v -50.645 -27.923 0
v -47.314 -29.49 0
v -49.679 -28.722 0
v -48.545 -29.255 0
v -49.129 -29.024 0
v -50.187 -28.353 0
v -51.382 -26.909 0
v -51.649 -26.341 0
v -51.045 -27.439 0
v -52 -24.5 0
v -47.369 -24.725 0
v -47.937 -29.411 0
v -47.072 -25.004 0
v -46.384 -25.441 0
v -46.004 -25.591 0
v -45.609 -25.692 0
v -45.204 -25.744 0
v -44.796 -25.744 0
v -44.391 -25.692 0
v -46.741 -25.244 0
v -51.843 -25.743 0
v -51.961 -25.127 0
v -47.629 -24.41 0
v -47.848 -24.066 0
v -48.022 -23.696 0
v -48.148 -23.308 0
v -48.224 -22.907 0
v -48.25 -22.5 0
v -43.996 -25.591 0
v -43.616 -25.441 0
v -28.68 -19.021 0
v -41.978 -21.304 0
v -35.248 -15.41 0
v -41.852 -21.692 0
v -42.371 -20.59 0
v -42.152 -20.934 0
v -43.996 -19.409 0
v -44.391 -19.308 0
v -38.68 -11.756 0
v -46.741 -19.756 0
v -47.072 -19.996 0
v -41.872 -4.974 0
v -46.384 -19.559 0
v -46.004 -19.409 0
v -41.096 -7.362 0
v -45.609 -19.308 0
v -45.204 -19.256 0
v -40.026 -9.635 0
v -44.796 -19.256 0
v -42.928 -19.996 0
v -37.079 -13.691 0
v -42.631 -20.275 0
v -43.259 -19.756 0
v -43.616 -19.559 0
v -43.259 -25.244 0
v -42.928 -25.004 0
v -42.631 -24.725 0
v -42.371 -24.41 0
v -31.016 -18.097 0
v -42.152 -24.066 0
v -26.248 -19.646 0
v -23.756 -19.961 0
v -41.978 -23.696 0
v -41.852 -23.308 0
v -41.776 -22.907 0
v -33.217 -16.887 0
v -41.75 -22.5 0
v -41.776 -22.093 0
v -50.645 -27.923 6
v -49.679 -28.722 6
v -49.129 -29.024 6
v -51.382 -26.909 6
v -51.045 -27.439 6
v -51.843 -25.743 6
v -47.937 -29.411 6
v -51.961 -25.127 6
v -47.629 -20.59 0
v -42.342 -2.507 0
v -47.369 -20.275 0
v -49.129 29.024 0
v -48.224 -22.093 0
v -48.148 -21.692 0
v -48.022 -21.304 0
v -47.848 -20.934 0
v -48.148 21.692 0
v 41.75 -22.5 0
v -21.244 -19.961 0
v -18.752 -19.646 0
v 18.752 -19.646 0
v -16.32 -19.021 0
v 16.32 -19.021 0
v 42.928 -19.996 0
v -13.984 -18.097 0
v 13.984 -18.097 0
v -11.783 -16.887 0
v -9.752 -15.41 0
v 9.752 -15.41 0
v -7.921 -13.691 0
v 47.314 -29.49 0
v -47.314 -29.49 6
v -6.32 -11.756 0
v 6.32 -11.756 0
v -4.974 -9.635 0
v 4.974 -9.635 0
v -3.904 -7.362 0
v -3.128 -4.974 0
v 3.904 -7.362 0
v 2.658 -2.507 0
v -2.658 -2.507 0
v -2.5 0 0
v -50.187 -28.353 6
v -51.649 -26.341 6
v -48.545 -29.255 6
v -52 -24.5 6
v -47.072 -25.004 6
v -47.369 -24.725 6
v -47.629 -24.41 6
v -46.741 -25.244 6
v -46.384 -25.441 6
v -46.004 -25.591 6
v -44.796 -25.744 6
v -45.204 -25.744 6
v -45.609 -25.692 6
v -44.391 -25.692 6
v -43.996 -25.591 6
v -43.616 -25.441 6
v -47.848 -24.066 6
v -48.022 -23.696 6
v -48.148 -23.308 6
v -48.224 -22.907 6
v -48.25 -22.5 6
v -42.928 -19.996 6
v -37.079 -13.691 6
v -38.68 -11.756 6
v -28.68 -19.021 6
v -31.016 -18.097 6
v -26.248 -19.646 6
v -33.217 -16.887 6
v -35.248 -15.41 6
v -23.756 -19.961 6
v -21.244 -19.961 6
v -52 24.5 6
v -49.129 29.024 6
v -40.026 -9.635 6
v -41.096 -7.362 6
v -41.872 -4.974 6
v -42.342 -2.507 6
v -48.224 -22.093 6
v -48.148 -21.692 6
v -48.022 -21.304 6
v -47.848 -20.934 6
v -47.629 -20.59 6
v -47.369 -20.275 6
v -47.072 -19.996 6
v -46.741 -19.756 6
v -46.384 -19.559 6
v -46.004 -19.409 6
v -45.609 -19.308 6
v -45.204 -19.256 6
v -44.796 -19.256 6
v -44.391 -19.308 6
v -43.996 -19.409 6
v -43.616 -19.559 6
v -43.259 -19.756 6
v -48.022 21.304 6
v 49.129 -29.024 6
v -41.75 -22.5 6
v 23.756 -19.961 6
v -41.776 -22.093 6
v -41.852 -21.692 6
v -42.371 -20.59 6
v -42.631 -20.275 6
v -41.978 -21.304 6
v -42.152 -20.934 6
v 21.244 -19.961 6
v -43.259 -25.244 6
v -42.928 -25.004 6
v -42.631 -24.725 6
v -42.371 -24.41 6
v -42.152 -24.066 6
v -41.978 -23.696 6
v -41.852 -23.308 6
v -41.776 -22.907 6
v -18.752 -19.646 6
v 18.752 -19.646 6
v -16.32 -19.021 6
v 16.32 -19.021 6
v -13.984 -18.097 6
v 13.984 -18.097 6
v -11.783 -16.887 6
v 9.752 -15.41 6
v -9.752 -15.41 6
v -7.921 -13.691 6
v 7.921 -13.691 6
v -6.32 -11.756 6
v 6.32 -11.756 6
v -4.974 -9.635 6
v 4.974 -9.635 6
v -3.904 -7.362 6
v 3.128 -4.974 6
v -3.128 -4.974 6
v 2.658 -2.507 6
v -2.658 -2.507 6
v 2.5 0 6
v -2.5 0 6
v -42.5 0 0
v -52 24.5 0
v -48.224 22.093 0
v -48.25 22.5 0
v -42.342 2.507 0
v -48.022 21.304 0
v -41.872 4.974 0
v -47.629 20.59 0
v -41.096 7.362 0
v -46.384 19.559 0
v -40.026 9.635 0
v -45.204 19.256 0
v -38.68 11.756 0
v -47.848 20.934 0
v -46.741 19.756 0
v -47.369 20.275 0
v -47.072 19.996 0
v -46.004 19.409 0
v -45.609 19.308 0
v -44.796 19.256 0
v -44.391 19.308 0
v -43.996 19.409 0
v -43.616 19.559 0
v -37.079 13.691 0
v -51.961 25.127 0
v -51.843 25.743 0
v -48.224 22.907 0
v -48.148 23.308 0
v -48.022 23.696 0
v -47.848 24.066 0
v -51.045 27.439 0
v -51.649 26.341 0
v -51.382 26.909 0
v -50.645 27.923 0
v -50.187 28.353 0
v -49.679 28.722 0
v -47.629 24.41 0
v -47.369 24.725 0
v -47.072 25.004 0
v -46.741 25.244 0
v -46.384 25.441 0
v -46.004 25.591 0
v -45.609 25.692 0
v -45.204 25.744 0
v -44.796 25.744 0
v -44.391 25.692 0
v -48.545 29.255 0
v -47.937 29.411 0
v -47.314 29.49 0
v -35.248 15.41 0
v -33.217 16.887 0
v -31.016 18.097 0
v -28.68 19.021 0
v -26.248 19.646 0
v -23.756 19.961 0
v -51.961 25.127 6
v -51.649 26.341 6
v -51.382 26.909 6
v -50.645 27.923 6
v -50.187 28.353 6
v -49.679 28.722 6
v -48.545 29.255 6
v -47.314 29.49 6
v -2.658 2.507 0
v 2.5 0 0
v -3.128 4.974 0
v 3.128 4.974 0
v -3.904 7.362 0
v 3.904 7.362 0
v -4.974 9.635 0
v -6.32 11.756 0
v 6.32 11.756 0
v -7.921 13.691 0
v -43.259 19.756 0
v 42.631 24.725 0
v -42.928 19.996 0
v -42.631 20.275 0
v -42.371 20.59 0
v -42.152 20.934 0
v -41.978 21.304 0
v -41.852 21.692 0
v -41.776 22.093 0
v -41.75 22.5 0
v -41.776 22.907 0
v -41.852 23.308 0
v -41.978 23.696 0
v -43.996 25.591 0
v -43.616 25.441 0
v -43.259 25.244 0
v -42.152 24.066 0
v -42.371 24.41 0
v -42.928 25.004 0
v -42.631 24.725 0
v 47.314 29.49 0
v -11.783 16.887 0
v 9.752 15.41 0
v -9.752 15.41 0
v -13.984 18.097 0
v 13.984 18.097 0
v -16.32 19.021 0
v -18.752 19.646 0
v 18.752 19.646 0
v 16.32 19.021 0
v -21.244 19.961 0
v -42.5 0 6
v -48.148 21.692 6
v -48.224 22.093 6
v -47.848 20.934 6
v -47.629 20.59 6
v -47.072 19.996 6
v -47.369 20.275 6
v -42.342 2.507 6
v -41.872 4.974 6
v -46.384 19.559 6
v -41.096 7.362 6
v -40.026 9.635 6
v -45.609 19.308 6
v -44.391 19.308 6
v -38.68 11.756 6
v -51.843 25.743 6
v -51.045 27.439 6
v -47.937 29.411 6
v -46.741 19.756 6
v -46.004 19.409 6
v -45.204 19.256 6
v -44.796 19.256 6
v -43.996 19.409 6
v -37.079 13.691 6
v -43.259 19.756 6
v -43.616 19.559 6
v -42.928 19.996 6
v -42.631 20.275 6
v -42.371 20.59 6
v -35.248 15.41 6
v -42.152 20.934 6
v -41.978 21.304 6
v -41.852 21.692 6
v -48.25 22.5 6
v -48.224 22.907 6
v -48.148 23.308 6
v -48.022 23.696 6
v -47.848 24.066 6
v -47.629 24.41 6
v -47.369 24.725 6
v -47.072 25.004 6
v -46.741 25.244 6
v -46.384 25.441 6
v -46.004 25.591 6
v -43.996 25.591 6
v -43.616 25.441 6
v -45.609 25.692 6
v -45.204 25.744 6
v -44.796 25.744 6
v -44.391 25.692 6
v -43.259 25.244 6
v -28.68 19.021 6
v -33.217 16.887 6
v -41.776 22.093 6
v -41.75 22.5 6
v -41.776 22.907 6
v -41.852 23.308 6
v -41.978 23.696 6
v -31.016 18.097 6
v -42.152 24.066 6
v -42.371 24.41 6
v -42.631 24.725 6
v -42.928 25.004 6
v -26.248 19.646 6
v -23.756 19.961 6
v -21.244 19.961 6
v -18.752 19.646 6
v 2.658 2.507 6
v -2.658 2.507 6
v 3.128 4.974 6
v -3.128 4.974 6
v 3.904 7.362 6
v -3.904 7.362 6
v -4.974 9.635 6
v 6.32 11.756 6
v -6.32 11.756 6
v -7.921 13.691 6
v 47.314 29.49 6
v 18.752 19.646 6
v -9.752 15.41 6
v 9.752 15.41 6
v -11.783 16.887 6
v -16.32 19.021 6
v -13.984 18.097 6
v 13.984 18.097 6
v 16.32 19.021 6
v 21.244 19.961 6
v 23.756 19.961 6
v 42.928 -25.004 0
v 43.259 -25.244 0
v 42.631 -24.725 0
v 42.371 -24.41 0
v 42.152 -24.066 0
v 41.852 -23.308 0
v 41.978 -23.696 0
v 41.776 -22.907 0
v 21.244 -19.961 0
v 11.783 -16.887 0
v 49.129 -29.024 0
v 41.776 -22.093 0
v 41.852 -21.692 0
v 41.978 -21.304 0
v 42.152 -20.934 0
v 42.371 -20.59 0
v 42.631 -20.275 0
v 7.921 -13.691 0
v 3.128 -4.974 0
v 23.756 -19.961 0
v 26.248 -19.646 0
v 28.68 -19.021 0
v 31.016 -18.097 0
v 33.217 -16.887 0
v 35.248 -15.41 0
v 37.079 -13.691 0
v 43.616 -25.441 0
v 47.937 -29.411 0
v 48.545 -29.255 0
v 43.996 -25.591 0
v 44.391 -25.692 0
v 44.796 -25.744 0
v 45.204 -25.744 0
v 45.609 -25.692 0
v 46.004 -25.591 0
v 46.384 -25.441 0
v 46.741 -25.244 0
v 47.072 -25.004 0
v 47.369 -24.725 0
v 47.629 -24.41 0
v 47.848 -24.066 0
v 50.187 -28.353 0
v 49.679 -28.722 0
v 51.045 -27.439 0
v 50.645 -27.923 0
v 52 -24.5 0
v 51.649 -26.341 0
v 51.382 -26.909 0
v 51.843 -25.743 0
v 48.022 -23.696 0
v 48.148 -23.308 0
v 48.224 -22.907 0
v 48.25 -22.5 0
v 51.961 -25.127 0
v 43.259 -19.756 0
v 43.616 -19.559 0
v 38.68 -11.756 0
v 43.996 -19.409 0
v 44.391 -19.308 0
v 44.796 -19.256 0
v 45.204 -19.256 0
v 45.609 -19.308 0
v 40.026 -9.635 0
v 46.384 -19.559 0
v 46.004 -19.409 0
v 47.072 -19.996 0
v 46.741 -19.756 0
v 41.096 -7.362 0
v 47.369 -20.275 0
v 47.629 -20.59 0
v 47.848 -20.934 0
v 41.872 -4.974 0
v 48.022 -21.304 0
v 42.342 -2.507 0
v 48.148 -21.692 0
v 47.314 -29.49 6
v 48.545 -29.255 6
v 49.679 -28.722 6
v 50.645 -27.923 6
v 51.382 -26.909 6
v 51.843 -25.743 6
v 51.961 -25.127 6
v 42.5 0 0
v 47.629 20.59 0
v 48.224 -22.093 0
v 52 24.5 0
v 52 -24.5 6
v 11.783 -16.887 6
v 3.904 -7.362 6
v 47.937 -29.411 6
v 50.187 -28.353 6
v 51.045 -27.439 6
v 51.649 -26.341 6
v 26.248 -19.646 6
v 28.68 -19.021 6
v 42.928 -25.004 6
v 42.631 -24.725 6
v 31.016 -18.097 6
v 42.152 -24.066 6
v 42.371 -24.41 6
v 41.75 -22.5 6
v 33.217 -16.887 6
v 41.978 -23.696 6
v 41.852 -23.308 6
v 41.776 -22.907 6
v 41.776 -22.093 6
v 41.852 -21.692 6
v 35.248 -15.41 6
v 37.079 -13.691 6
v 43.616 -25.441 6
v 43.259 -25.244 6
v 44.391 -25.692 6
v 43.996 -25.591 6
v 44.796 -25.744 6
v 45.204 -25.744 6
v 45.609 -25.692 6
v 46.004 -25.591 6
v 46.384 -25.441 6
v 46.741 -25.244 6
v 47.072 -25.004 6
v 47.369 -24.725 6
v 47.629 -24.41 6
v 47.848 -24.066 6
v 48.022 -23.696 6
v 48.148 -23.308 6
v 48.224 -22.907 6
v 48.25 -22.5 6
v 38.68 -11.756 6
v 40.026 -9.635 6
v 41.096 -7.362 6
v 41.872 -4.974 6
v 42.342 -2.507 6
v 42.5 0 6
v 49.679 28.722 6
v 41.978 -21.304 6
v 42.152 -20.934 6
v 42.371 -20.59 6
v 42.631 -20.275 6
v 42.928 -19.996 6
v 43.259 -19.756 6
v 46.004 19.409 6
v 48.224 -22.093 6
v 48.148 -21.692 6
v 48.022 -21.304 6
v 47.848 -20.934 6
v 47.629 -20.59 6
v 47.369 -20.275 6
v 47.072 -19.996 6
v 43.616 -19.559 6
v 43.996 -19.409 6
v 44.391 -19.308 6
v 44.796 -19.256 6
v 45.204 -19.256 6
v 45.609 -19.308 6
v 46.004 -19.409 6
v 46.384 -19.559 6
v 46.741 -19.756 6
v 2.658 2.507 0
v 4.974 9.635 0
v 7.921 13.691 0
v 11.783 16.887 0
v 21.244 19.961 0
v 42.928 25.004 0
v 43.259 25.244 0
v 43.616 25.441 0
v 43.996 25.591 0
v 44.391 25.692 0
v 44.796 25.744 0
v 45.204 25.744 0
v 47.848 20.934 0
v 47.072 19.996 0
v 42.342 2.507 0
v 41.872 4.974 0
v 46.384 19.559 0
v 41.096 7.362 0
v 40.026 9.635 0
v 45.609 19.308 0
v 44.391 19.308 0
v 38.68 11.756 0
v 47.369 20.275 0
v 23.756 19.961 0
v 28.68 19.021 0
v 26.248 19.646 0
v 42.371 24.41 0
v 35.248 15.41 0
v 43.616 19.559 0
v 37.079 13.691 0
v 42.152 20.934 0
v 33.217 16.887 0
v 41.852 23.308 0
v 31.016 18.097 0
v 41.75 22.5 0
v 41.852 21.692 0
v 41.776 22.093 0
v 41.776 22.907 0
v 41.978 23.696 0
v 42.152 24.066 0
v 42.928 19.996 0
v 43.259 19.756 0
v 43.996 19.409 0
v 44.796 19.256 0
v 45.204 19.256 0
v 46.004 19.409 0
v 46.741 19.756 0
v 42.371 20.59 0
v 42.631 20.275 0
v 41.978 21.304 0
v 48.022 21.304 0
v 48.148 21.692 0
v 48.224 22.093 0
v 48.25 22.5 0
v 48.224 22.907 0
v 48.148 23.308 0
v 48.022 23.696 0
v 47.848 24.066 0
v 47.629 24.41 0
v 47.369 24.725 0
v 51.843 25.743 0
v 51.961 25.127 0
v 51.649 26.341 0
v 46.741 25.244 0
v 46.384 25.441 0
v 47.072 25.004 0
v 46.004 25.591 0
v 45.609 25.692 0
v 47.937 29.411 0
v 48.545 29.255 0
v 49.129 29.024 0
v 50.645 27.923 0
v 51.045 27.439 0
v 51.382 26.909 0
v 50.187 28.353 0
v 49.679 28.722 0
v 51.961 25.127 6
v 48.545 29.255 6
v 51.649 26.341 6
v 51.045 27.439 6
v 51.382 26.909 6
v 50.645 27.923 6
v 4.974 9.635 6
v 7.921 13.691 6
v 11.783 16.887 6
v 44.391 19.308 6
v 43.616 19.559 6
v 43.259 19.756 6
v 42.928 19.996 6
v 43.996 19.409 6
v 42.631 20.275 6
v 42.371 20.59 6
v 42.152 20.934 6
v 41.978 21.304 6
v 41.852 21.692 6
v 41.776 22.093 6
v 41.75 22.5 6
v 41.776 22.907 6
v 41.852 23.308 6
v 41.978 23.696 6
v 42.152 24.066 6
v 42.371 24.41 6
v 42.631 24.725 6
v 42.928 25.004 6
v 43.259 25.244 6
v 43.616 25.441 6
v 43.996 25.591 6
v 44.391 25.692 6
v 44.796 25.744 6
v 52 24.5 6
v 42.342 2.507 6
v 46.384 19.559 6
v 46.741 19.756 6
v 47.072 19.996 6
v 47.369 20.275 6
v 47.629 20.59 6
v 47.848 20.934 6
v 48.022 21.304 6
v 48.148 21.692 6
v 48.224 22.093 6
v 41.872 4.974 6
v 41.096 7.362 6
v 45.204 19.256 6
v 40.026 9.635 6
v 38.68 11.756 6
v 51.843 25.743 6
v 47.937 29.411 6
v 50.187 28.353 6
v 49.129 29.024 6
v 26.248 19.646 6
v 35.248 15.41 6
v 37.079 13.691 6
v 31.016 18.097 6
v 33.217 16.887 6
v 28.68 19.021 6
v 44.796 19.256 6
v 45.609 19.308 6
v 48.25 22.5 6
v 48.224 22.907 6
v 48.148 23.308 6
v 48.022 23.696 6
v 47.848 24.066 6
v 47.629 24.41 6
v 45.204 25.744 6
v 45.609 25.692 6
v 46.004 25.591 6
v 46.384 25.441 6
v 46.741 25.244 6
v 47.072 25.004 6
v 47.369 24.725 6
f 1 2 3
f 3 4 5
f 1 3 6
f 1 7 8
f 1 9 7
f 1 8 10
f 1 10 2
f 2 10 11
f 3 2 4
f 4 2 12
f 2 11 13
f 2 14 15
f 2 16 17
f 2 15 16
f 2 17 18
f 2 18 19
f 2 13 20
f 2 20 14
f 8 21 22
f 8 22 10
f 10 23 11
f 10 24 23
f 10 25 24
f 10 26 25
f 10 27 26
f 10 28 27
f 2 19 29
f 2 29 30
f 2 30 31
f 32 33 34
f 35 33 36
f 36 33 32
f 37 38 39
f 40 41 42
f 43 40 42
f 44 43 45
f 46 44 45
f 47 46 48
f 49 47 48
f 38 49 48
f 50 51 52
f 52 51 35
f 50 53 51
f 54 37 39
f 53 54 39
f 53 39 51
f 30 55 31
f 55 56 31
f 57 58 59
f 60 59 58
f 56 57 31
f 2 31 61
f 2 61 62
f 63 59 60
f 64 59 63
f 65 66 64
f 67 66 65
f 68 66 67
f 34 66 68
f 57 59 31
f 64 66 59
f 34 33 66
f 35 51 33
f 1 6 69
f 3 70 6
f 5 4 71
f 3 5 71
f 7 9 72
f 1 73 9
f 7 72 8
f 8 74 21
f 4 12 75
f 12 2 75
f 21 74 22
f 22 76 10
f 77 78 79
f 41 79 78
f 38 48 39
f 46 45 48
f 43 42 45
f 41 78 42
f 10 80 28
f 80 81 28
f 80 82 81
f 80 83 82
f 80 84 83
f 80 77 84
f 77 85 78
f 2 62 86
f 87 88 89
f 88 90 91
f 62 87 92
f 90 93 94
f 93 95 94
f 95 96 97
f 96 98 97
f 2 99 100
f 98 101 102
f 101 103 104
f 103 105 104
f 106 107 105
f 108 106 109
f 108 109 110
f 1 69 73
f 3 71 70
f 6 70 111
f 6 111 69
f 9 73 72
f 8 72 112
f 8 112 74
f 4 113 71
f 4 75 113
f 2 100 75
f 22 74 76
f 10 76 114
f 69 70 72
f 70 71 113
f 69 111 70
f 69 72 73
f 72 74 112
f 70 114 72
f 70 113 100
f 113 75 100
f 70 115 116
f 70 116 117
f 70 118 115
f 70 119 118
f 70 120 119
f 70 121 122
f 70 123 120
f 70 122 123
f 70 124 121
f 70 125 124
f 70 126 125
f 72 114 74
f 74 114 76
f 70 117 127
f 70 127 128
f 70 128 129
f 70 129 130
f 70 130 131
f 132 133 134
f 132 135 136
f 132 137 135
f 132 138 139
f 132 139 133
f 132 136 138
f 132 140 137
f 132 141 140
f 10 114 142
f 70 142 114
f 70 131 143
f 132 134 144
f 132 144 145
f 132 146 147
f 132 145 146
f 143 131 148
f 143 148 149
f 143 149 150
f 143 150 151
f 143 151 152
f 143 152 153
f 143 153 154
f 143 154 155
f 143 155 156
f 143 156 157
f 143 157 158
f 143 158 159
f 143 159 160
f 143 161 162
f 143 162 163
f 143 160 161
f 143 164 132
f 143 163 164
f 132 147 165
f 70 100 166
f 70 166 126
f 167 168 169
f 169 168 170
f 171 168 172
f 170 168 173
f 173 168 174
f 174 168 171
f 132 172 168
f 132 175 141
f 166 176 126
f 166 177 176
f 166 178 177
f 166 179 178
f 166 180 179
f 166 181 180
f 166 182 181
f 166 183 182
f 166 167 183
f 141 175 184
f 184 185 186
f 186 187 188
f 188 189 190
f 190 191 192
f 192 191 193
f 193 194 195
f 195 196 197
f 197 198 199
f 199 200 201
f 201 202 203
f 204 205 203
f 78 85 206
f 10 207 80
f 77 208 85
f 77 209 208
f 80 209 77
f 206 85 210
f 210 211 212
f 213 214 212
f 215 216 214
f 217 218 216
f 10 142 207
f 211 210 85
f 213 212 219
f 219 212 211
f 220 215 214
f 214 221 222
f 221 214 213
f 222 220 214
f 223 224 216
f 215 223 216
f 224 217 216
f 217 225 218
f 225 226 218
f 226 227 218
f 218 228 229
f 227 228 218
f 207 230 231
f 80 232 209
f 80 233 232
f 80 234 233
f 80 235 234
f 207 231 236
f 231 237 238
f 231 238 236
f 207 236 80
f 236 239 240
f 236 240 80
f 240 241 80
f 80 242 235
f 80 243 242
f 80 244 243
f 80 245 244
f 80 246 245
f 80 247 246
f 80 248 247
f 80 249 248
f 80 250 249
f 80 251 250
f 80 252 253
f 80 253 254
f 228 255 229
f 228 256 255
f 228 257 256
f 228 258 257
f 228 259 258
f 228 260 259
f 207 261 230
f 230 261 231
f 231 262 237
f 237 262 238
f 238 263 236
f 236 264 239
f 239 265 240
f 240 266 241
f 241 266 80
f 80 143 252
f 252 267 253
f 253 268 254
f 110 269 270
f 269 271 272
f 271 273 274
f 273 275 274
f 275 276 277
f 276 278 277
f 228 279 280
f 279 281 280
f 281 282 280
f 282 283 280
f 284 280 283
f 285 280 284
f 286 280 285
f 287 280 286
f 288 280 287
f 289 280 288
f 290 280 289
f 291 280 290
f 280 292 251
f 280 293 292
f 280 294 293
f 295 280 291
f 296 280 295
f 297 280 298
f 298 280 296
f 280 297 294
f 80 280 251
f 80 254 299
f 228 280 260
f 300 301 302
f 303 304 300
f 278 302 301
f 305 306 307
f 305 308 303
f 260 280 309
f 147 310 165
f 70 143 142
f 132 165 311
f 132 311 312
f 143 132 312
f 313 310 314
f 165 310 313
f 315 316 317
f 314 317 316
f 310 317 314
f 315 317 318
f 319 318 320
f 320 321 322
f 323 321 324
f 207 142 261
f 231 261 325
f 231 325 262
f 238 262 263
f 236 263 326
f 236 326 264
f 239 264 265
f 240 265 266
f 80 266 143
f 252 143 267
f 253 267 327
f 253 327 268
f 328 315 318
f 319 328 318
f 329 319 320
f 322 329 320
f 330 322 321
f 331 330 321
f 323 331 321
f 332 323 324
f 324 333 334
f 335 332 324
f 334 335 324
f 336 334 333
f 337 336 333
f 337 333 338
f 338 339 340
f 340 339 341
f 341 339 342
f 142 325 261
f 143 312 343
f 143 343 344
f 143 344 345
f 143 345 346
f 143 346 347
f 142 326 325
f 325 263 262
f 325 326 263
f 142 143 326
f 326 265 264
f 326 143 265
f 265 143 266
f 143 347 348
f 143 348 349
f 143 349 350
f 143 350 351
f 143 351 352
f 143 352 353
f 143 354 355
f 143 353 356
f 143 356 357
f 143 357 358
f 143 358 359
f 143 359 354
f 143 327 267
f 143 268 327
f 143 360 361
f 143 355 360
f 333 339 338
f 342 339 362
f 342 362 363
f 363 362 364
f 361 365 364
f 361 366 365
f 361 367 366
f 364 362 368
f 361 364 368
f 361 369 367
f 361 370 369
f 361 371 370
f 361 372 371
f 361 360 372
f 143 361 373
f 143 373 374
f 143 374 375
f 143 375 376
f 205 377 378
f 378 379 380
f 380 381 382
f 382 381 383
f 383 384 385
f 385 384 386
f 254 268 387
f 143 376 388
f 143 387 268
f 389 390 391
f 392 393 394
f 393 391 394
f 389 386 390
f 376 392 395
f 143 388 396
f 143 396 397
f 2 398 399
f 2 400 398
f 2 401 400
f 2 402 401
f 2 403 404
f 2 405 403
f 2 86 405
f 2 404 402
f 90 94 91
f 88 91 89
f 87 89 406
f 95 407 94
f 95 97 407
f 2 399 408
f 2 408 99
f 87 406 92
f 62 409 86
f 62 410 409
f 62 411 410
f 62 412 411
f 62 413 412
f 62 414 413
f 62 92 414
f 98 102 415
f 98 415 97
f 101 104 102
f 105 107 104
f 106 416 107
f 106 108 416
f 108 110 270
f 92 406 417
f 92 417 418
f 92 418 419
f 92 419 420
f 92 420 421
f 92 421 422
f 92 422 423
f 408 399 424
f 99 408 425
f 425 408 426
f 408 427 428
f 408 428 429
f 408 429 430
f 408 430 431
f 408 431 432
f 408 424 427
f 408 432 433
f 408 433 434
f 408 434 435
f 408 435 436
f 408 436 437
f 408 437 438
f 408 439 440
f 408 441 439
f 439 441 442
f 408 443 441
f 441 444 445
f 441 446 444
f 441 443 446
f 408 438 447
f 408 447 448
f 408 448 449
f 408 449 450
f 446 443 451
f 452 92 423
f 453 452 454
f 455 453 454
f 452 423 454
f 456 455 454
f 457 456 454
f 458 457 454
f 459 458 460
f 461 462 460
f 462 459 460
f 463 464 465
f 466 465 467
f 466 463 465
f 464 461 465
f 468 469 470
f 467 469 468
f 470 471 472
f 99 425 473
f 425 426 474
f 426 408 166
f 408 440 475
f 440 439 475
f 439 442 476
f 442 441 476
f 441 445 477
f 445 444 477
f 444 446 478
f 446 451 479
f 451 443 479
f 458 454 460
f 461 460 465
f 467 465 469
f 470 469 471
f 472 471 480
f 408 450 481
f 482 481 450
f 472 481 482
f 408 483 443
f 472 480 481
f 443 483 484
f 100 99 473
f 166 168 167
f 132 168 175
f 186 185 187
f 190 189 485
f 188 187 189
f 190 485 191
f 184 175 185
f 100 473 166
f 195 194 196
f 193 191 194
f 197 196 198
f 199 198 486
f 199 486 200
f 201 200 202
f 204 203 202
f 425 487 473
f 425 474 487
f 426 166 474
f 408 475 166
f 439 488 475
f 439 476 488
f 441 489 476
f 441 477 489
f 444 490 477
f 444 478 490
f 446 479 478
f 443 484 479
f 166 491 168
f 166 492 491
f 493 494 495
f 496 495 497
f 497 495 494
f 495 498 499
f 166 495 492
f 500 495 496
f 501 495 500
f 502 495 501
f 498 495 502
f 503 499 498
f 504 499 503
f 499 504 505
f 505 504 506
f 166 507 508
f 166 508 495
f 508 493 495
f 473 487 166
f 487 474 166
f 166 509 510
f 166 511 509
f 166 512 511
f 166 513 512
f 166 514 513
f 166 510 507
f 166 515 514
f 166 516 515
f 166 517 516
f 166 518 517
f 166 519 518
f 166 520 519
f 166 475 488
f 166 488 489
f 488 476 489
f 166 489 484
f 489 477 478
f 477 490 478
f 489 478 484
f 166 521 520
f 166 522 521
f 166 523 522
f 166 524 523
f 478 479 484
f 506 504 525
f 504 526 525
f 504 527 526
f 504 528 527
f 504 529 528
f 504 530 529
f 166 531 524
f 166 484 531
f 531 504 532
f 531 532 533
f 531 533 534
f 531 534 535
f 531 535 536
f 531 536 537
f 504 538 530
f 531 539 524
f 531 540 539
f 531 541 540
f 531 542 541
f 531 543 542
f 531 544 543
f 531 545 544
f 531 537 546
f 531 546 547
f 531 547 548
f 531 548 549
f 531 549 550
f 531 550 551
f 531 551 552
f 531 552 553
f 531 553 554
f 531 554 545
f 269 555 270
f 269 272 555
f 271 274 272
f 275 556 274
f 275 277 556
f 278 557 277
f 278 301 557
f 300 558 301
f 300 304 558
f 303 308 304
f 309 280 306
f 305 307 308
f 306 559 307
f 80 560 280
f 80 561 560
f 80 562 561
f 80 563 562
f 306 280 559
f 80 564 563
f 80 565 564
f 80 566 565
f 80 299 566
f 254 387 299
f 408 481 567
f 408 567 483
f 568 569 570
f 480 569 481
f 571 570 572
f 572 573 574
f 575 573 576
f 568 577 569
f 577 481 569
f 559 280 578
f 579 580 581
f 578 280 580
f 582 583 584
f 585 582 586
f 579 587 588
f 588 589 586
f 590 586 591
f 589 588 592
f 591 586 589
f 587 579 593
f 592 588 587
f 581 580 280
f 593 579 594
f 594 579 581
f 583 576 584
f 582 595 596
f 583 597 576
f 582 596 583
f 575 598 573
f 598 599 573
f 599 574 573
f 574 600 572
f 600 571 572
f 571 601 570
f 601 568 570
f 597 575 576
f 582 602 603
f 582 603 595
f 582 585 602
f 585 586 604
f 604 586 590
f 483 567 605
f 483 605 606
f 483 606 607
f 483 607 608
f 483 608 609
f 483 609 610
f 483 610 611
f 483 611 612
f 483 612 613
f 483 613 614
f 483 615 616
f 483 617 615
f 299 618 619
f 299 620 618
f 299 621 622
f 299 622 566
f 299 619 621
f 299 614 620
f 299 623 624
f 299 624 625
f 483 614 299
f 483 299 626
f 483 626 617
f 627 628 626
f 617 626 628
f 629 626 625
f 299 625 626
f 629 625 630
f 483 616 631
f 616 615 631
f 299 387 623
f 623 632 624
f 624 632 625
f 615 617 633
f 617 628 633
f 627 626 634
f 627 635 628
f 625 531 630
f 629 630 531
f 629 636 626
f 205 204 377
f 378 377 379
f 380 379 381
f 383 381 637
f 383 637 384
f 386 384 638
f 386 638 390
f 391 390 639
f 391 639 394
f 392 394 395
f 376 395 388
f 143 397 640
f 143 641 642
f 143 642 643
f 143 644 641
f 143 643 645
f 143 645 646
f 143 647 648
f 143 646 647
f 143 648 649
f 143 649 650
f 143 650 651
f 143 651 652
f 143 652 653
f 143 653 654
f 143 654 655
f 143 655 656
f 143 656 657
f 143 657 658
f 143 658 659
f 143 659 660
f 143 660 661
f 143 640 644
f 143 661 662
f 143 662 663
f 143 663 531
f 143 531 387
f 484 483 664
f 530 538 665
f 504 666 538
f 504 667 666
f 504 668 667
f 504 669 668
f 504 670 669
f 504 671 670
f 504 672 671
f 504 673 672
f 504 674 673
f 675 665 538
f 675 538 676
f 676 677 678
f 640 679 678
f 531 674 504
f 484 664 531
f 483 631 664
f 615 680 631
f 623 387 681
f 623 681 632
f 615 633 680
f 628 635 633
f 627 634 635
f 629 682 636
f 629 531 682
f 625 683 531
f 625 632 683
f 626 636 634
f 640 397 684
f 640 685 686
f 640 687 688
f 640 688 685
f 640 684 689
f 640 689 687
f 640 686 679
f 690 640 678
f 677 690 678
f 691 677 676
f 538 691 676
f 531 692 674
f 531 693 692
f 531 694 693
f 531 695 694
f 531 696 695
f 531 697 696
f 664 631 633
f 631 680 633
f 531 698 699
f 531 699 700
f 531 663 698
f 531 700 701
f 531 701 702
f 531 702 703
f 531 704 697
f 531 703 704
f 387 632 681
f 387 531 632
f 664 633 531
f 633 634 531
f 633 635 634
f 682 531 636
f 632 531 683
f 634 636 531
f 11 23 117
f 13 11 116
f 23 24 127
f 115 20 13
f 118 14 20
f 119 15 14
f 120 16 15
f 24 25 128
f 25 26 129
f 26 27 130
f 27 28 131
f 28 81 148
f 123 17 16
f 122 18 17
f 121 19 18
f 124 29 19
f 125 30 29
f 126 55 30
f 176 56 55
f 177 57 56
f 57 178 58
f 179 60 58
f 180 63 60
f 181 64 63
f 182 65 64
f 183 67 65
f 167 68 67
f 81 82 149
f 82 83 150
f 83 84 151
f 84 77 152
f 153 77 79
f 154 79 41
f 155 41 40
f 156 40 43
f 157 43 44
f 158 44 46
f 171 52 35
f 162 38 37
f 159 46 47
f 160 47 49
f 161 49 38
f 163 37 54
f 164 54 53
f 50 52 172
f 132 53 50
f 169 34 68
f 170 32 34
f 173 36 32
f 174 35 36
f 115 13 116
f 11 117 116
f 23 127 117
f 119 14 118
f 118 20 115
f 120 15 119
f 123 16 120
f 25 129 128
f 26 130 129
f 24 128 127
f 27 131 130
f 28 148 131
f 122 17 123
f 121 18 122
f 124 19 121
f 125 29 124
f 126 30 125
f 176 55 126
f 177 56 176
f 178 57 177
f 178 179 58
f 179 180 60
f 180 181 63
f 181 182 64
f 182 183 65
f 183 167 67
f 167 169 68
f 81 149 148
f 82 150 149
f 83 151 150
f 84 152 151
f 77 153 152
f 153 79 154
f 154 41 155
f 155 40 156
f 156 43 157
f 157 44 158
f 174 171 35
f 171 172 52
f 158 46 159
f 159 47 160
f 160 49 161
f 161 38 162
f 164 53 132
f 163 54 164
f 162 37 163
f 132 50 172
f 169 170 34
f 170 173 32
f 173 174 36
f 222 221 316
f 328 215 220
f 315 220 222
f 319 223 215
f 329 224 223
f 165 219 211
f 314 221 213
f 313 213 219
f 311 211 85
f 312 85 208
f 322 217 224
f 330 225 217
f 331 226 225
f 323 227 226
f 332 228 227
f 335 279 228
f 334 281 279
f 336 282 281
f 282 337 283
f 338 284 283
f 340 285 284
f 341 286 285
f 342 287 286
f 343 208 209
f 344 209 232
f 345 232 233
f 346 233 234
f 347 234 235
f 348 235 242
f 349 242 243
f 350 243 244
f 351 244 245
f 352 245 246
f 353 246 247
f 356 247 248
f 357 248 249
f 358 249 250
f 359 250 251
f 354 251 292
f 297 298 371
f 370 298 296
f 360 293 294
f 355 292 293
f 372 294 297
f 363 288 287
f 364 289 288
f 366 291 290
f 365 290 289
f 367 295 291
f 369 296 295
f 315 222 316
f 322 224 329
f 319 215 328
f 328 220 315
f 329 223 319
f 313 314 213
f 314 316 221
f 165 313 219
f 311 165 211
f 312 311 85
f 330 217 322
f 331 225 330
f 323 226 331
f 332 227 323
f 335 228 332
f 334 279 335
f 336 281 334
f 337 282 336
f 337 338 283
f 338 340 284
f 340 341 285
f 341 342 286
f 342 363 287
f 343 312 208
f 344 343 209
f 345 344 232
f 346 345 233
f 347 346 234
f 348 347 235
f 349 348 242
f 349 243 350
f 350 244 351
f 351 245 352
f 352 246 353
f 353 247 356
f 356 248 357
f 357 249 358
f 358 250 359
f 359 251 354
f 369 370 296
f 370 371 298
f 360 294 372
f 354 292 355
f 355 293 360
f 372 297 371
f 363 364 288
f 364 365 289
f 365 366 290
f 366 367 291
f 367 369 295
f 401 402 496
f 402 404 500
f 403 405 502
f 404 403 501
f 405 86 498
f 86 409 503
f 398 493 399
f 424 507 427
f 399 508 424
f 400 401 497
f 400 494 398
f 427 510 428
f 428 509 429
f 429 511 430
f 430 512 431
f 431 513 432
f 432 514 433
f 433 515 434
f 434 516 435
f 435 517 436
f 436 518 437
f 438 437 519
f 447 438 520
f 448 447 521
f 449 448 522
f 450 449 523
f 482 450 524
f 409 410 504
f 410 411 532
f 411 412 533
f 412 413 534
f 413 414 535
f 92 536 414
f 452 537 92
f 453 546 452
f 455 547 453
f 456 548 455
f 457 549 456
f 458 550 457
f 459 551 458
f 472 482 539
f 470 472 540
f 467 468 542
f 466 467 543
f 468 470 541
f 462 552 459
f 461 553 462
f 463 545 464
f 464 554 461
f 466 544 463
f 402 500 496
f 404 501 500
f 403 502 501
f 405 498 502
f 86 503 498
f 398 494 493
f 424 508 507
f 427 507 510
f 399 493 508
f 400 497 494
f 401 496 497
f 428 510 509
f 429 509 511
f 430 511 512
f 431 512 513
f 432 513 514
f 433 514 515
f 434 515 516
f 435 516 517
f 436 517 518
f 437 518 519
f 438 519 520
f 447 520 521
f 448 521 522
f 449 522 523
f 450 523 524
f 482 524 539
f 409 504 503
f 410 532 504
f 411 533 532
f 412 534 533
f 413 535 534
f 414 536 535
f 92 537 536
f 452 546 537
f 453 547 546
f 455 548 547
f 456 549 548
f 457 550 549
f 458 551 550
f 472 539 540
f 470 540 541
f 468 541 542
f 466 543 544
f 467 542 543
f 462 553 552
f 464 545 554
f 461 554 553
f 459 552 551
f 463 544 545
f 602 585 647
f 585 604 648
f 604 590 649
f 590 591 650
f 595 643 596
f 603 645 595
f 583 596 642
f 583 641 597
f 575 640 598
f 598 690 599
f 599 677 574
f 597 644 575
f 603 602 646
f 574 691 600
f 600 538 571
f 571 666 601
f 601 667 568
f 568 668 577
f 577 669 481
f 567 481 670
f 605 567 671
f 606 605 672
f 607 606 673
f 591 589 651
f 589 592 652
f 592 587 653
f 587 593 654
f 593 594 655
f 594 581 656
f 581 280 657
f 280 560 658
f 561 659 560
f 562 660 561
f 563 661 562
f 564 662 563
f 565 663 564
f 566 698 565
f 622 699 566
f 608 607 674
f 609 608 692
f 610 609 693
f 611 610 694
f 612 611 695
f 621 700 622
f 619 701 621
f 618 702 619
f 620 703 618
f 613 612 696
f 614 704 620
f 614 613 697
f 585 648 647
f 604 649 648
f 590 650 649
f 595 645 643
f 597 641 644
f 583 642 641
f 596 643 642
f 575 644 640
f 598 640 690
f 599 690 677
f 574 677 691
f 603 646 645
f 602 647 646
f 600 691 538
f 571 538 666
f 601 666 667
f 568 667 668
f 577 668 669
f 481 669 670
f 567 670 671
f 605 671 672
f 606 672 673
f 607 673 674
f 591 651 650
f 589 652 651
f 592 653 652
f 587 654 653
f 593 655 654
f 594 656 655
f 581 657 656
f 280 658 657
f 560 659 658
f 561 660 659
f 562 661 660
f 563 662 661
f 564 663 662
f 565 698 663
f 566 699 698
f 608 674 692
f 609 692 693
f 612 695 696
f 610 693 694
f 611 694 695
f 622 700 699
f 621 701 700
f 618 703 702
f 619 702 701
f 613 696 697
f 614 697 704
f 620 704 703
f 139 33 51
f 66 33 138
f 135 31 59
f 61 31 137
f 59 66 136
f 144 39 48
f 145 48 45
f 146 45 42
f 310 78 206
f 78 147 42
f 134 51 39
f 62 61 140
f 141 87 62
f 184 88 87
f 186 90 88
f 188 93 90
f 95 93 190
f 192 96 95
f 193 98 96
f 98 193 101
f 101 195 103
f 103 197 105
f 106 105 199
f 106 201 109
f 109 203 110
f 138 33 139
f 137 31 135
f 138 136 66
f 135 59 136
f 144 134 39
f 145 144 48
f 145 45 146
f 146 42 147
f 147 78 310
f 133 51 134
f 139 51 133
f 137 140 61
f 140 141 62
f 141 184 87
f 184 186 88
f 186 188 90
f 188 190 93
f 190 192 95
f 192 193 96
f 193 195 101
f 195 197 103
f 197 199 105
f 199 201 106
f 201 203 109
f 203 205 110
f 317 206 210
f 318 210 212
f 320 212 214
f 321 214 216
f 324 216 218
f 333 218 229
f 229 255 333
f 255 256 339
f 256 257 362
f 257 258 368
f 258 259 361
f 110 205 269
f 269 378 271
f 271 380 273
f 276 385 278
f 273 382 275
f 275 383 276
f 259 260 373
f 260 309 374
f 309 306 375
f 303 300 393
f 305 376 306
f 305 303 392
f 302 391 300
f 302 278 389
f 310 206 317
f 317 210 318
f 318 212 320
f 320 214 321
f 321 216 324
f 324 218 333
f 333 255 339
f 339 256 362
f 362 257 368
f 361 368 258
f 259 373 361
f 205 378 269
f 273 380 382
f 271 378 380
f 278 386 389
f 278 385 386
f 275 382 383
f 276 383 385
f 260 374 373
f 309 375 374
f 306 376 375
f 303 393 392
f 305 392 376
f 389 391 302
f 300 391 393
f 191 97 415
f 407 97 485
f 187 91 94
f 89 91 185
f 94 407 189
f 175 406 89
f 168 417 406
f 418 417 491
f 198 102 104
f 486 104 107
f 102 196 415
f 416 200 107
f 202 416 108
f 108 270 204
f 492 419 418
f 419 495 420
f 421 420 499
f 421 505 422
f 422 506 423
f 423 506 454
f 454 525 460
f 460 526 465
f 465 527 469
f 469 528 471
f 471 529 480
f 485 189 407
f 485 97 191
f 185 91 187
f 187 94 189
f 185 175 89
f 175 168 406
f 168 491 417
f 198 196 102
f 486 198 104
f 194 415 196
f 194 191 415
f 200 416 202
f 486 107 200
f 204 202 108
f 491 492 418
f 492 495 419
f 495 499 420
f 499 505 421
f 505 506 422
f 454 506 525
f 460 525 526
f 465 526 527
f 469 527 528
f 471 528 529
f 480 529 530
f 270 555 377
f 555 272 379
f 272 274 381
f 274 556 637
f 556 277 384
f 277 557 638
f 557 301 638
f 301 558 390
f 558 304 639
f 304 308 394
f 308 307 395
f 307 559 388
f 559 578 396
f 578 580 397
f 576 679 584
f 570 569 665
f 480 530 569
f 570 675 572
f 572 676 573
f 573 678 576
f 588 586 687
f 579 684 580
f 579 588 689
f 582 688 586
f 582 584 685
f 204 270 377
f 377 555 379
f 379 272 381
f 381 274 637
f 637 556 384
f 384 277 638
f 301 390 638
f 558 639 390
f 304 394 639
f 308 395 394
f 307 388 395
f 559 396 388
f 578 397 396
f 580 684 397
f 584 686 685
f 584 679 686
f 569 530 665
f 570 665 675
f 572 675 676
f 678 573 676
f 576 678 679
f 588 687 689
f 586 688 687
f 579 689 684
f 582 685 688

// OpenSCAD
$fn = 50;

difference() {
	union() {
		hull() {
			translate(v = [-47.0, 24.5, 0]) {
				cylinder(h = 6, r = 5);
			}
			translate(v = [47.0, 24.5, 0]) {
				cylinder(h = 6, r = 5);
			}
			translate(v = [-47.0, -24.5, 0]) {
				cylinder(h = 6, r = 5);
			}
			translate(v = [47.0, -24.5, 0]) {
				cylinder(h = 6, r = 5);
			}
		}
	}
	union() {
		translate(v = [-45.0, -22.5, -100.0]) {
			cylinder(h = 200, r = 3.25);
		}
		translate(v = [-45.0, 22.5, -100.0]) {
			cylinder(h = 200, r = 3.25);
		}
		translate(v = [45.0, -22.5, -100.0]) {
			cylinder(h = 200, r = 3.25);
		}
		translate(v = [45.0, 22.5, -100.0]) {
			cylinder(h = 200, r = 3.25);
		}
		translate(v = [-45.0, -22.5, -100.0]) {
			cylinder(h = 200, r = 1.8);
		}
		translate(v = [-45.0, 22.5, -100.0]) {
			cylinder(h = 200, r = 1.8);
		}
		translate(v = [45.0, -22.5, -100.0]) {
			cylinder(h = 200, r = 1.8);
		}
		translate(v = [45.0, 22.5, -100.0]) {
			cylinder(h = 200, r = 1.8);
		}
		translate(v = [-22.5, 0, 0.0]) {
			cylinder(h = 6, r = 20.0);
		}
		translate(v = [22.5, 0, 0.0]) {
			cylinder(h = 6, r = 20.0);
		}
	}
}
